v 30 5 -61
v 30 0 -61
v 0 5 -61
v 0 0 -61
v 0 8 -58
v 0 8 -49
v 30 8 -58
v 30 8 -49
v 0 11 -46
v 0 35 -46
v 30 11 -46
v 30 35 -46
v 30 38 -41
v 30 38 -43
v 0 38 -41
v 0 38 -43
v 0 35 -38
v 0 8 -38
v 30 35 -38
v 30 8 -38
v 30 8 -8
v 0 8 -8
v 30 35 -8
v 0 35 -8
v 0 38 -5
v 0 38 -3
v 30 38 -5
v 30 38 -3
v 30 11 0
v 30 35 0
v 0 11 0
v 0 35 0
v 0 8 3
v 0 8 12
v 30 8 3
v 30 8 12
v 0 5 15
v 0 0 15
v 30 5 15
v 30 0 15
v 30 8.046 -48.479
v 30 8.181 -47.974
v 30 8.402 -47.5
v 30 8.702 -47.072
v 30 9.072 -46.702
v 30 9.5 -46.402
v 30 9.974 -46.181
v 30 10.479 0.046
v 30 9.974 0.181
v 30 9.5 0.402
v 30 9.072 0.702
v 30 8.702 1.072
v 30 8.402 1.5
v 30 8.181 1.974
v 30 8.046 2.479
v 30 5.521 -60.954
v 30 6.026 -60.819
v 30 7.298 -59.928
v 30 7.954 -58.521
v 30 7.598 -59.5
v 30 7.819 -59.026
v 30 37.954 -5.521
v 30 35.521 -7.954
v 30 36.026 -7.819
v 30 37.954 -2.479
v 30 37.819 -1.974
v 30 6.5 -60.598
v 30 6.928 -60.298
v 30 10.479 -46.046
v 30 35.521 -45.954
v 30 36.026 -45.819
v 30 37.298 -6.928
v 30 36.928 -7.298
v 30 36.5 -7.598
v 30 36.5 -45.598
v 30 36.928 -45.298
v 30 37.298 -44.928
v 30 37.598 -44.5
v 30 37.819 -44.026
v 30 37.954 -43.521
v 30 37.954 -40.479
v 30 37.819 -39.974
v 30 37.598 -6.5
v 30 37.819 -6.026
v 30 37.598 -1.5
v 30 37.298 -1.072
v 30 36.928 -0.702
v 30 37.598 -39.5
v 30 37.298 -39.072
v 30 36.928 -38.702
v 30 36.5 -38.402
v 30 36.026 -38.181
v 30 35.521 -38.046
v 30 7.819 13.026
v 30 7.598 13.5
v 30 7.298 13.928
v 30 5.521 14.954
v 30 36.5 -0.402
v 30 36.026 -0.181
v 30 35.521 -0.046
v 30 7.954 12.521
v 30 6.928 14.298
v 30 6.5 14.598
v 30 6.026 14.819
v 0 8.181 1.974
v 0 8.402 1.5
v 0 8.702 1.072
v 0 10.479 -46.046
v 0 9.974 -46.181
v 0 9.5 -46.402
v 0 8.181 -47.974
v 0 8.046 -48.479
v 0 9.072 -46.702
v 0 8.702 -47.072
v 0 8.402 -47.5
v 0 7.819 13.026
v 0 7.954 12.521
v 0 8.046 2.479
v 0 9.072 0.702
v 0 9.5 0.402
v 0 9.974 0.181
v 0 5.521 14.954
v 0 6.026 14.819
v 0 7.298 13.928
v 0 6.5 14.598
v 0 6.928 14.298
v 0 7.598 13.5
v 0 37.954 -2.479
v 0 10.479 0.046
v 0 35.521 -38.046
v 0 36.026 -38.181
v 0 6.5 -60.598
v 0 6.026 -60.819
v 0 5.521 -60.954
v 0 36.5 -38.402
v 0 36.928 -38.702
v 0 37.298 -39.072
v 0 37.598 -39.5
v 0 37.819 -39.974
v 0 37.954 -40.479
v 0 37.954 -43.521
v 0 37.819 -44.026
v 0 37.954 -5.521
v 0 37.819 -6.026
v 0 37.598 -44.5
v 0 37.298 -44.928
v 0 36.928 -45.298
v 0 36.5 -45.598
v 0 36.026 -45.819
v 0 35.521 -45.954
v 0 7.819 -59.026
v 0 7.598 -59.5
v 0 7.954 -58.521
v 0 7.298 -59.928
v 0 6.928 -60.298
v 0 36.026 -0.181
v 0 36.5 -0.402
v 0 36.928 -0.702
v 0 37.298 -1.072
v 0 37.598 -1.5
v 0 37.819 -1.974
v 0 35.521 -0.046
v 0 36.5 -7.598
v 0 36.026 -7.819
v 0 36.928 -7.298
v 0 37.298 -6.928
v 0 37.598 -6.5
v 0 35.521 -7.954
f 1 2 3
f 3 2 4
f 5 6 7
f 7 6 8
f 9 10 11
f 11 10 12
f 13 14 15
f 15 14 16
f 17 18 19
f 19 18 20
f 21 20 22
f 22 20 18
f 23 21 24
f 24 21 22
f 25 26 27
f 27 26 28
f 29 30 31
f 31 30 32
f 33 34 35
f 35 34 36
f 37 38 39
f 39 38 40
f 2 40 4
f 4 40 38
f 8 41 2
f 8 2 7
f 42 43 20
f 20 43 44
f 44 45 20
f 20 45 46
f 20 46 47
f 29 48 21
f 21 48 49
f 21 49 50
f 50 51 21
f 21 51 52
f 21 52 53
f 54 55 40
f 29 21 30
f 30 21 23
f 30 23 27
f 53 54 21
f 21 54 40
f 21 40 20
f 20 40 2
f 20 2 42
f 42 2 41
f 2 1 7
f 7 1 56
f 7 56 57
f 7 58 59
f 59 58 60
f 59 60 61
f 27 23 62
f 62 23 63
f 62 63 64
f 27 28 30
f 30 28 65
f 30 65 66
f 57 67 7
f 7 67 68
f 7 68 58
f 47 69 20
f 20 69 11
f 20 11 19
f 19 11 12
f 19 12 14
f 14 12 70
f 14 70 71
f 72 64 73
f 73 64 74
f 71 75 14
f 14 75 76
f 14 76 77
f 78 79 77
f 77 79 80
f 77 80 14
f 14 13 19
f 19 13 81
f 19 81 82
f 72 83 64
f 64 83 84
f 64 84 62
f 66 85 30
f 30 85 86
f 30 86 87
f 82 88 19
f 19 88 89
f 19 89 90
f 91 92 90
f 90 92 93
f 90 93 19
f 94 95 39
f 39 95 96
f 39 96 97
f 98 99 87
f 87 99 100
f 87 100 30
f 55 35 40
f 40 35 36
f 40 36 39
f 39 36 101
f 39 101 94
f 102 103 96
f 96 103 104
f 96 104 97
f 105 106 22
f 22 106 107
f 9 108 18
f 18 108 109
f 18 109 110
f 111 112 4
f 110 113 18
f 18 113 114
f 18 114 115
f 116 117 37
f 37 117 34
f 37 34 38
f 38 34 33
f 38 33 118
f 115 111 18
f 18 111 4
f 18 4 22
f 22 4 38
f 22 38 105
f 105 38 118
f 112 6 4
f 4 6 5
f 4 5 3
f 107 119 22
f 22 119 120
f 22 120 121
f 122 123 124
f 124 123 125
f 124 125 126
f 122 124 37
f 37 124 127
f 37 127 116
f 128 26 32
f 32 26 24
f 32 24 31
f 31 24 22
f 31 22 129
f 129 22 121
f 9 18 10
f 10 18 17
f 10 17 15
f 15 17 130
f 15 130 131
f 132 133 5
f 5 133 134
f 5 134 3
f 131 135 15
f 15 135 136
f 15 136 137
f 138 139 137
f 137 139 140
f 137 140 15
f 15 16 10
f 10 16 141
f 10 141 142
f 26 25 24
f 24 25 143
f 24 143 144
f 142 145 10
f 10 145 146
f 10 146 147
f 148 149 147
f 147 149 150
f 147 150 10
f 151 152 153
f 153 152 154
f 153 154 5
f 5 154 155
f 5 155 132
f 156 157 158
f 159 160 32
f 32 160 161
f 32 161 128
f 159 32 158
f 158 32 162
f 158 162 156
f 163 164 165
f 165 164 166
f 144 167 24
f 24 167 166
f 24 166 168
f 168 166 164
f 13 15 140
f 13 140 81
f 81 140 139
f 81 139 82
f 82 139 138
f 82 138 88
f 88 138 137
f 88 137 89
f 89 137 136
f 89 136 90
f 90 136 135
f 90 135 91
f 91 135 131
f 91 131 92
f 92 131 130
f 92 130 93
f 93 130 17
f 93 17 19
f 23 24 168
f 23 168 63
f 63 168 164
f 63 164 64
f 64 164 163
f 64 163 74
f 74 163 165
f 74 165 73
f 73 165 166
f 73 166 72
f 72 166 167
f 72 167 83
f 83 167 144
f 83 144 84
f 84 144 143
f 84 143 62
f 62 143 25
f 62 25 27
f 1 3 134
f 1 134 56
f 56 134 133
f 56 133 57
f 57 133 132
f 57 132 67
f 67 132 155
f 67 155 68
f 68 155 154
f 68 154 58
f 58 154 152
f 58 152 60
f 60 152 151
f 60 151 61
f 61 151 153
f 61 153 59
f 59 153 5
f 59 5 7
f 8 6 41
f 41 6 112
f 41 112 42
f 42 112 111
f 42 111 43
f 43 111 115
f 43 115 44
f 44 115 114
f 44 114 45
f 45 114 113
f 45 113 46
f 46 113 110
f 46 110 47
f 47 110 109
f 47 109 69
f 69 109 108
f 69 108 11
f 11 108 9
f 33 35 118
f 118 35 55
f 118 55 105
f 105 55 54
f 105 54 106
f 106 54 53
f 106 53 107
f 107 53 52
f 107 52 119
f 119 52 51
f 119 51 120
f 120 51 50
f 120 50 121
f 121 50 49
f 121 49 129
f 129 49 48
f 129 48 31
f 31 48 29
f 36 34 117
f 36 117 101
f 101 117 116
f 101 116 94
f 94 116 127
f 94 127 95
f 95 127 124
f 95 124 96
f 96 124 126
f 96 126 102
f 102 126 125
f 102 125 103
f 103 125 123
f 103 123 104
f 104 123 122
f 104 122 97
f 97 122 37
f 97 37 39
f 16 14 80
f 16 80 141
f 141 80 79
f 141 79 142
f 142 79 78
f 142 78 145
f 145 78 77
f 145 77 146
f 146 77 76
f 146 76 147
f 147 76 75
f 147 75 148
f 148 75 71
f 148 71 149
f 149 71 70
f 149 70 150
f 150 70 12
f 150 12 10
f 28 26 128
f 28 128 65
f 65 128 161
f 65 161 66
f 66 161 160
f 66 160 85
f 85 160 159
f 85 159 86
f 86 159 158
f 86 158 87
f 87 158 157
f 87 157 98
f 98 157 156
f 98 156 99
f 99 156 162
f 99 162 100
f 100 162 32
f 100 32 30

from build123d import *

# Parameters (mm, degrees)
BOSS_EXTRUDE2_DEPTH = 30
FILLET1_R           = 3


with BuildPart() as part:
    # Sketch1 → Boss-Extrude2 (new body)
    with BuildSketch(Plane(origin=(0, 0, 0), x_dir=(0, 0, -1), z_dir=(1, 0, 0))):
        Polygon((0, 8), (0, 38), (8, 38), (8, 8), (38, 8), (38, 38), (46, 38), (46, 8), (61, 8), (61, 0), (-15, 0), (-15, 8), align=None)
    extrude(amount=BOSS_EXTRUDE2_DEPTH)

    # Fillet1
    fillet1_edges = [part.edges().sort_by_distance(p)[0] for p in [
        (15, 8, 15),
        (15, 8, 0),
        (15, 38, 0),
        (15, 38, -8),
        (15, 38, -38),
        (15, 38, -46),
        (15, 8, -46),
        (15, 8, -61),
    ]]
    fillet(fillet1_edges, radius=FILLET1_R)


solid = part.part
